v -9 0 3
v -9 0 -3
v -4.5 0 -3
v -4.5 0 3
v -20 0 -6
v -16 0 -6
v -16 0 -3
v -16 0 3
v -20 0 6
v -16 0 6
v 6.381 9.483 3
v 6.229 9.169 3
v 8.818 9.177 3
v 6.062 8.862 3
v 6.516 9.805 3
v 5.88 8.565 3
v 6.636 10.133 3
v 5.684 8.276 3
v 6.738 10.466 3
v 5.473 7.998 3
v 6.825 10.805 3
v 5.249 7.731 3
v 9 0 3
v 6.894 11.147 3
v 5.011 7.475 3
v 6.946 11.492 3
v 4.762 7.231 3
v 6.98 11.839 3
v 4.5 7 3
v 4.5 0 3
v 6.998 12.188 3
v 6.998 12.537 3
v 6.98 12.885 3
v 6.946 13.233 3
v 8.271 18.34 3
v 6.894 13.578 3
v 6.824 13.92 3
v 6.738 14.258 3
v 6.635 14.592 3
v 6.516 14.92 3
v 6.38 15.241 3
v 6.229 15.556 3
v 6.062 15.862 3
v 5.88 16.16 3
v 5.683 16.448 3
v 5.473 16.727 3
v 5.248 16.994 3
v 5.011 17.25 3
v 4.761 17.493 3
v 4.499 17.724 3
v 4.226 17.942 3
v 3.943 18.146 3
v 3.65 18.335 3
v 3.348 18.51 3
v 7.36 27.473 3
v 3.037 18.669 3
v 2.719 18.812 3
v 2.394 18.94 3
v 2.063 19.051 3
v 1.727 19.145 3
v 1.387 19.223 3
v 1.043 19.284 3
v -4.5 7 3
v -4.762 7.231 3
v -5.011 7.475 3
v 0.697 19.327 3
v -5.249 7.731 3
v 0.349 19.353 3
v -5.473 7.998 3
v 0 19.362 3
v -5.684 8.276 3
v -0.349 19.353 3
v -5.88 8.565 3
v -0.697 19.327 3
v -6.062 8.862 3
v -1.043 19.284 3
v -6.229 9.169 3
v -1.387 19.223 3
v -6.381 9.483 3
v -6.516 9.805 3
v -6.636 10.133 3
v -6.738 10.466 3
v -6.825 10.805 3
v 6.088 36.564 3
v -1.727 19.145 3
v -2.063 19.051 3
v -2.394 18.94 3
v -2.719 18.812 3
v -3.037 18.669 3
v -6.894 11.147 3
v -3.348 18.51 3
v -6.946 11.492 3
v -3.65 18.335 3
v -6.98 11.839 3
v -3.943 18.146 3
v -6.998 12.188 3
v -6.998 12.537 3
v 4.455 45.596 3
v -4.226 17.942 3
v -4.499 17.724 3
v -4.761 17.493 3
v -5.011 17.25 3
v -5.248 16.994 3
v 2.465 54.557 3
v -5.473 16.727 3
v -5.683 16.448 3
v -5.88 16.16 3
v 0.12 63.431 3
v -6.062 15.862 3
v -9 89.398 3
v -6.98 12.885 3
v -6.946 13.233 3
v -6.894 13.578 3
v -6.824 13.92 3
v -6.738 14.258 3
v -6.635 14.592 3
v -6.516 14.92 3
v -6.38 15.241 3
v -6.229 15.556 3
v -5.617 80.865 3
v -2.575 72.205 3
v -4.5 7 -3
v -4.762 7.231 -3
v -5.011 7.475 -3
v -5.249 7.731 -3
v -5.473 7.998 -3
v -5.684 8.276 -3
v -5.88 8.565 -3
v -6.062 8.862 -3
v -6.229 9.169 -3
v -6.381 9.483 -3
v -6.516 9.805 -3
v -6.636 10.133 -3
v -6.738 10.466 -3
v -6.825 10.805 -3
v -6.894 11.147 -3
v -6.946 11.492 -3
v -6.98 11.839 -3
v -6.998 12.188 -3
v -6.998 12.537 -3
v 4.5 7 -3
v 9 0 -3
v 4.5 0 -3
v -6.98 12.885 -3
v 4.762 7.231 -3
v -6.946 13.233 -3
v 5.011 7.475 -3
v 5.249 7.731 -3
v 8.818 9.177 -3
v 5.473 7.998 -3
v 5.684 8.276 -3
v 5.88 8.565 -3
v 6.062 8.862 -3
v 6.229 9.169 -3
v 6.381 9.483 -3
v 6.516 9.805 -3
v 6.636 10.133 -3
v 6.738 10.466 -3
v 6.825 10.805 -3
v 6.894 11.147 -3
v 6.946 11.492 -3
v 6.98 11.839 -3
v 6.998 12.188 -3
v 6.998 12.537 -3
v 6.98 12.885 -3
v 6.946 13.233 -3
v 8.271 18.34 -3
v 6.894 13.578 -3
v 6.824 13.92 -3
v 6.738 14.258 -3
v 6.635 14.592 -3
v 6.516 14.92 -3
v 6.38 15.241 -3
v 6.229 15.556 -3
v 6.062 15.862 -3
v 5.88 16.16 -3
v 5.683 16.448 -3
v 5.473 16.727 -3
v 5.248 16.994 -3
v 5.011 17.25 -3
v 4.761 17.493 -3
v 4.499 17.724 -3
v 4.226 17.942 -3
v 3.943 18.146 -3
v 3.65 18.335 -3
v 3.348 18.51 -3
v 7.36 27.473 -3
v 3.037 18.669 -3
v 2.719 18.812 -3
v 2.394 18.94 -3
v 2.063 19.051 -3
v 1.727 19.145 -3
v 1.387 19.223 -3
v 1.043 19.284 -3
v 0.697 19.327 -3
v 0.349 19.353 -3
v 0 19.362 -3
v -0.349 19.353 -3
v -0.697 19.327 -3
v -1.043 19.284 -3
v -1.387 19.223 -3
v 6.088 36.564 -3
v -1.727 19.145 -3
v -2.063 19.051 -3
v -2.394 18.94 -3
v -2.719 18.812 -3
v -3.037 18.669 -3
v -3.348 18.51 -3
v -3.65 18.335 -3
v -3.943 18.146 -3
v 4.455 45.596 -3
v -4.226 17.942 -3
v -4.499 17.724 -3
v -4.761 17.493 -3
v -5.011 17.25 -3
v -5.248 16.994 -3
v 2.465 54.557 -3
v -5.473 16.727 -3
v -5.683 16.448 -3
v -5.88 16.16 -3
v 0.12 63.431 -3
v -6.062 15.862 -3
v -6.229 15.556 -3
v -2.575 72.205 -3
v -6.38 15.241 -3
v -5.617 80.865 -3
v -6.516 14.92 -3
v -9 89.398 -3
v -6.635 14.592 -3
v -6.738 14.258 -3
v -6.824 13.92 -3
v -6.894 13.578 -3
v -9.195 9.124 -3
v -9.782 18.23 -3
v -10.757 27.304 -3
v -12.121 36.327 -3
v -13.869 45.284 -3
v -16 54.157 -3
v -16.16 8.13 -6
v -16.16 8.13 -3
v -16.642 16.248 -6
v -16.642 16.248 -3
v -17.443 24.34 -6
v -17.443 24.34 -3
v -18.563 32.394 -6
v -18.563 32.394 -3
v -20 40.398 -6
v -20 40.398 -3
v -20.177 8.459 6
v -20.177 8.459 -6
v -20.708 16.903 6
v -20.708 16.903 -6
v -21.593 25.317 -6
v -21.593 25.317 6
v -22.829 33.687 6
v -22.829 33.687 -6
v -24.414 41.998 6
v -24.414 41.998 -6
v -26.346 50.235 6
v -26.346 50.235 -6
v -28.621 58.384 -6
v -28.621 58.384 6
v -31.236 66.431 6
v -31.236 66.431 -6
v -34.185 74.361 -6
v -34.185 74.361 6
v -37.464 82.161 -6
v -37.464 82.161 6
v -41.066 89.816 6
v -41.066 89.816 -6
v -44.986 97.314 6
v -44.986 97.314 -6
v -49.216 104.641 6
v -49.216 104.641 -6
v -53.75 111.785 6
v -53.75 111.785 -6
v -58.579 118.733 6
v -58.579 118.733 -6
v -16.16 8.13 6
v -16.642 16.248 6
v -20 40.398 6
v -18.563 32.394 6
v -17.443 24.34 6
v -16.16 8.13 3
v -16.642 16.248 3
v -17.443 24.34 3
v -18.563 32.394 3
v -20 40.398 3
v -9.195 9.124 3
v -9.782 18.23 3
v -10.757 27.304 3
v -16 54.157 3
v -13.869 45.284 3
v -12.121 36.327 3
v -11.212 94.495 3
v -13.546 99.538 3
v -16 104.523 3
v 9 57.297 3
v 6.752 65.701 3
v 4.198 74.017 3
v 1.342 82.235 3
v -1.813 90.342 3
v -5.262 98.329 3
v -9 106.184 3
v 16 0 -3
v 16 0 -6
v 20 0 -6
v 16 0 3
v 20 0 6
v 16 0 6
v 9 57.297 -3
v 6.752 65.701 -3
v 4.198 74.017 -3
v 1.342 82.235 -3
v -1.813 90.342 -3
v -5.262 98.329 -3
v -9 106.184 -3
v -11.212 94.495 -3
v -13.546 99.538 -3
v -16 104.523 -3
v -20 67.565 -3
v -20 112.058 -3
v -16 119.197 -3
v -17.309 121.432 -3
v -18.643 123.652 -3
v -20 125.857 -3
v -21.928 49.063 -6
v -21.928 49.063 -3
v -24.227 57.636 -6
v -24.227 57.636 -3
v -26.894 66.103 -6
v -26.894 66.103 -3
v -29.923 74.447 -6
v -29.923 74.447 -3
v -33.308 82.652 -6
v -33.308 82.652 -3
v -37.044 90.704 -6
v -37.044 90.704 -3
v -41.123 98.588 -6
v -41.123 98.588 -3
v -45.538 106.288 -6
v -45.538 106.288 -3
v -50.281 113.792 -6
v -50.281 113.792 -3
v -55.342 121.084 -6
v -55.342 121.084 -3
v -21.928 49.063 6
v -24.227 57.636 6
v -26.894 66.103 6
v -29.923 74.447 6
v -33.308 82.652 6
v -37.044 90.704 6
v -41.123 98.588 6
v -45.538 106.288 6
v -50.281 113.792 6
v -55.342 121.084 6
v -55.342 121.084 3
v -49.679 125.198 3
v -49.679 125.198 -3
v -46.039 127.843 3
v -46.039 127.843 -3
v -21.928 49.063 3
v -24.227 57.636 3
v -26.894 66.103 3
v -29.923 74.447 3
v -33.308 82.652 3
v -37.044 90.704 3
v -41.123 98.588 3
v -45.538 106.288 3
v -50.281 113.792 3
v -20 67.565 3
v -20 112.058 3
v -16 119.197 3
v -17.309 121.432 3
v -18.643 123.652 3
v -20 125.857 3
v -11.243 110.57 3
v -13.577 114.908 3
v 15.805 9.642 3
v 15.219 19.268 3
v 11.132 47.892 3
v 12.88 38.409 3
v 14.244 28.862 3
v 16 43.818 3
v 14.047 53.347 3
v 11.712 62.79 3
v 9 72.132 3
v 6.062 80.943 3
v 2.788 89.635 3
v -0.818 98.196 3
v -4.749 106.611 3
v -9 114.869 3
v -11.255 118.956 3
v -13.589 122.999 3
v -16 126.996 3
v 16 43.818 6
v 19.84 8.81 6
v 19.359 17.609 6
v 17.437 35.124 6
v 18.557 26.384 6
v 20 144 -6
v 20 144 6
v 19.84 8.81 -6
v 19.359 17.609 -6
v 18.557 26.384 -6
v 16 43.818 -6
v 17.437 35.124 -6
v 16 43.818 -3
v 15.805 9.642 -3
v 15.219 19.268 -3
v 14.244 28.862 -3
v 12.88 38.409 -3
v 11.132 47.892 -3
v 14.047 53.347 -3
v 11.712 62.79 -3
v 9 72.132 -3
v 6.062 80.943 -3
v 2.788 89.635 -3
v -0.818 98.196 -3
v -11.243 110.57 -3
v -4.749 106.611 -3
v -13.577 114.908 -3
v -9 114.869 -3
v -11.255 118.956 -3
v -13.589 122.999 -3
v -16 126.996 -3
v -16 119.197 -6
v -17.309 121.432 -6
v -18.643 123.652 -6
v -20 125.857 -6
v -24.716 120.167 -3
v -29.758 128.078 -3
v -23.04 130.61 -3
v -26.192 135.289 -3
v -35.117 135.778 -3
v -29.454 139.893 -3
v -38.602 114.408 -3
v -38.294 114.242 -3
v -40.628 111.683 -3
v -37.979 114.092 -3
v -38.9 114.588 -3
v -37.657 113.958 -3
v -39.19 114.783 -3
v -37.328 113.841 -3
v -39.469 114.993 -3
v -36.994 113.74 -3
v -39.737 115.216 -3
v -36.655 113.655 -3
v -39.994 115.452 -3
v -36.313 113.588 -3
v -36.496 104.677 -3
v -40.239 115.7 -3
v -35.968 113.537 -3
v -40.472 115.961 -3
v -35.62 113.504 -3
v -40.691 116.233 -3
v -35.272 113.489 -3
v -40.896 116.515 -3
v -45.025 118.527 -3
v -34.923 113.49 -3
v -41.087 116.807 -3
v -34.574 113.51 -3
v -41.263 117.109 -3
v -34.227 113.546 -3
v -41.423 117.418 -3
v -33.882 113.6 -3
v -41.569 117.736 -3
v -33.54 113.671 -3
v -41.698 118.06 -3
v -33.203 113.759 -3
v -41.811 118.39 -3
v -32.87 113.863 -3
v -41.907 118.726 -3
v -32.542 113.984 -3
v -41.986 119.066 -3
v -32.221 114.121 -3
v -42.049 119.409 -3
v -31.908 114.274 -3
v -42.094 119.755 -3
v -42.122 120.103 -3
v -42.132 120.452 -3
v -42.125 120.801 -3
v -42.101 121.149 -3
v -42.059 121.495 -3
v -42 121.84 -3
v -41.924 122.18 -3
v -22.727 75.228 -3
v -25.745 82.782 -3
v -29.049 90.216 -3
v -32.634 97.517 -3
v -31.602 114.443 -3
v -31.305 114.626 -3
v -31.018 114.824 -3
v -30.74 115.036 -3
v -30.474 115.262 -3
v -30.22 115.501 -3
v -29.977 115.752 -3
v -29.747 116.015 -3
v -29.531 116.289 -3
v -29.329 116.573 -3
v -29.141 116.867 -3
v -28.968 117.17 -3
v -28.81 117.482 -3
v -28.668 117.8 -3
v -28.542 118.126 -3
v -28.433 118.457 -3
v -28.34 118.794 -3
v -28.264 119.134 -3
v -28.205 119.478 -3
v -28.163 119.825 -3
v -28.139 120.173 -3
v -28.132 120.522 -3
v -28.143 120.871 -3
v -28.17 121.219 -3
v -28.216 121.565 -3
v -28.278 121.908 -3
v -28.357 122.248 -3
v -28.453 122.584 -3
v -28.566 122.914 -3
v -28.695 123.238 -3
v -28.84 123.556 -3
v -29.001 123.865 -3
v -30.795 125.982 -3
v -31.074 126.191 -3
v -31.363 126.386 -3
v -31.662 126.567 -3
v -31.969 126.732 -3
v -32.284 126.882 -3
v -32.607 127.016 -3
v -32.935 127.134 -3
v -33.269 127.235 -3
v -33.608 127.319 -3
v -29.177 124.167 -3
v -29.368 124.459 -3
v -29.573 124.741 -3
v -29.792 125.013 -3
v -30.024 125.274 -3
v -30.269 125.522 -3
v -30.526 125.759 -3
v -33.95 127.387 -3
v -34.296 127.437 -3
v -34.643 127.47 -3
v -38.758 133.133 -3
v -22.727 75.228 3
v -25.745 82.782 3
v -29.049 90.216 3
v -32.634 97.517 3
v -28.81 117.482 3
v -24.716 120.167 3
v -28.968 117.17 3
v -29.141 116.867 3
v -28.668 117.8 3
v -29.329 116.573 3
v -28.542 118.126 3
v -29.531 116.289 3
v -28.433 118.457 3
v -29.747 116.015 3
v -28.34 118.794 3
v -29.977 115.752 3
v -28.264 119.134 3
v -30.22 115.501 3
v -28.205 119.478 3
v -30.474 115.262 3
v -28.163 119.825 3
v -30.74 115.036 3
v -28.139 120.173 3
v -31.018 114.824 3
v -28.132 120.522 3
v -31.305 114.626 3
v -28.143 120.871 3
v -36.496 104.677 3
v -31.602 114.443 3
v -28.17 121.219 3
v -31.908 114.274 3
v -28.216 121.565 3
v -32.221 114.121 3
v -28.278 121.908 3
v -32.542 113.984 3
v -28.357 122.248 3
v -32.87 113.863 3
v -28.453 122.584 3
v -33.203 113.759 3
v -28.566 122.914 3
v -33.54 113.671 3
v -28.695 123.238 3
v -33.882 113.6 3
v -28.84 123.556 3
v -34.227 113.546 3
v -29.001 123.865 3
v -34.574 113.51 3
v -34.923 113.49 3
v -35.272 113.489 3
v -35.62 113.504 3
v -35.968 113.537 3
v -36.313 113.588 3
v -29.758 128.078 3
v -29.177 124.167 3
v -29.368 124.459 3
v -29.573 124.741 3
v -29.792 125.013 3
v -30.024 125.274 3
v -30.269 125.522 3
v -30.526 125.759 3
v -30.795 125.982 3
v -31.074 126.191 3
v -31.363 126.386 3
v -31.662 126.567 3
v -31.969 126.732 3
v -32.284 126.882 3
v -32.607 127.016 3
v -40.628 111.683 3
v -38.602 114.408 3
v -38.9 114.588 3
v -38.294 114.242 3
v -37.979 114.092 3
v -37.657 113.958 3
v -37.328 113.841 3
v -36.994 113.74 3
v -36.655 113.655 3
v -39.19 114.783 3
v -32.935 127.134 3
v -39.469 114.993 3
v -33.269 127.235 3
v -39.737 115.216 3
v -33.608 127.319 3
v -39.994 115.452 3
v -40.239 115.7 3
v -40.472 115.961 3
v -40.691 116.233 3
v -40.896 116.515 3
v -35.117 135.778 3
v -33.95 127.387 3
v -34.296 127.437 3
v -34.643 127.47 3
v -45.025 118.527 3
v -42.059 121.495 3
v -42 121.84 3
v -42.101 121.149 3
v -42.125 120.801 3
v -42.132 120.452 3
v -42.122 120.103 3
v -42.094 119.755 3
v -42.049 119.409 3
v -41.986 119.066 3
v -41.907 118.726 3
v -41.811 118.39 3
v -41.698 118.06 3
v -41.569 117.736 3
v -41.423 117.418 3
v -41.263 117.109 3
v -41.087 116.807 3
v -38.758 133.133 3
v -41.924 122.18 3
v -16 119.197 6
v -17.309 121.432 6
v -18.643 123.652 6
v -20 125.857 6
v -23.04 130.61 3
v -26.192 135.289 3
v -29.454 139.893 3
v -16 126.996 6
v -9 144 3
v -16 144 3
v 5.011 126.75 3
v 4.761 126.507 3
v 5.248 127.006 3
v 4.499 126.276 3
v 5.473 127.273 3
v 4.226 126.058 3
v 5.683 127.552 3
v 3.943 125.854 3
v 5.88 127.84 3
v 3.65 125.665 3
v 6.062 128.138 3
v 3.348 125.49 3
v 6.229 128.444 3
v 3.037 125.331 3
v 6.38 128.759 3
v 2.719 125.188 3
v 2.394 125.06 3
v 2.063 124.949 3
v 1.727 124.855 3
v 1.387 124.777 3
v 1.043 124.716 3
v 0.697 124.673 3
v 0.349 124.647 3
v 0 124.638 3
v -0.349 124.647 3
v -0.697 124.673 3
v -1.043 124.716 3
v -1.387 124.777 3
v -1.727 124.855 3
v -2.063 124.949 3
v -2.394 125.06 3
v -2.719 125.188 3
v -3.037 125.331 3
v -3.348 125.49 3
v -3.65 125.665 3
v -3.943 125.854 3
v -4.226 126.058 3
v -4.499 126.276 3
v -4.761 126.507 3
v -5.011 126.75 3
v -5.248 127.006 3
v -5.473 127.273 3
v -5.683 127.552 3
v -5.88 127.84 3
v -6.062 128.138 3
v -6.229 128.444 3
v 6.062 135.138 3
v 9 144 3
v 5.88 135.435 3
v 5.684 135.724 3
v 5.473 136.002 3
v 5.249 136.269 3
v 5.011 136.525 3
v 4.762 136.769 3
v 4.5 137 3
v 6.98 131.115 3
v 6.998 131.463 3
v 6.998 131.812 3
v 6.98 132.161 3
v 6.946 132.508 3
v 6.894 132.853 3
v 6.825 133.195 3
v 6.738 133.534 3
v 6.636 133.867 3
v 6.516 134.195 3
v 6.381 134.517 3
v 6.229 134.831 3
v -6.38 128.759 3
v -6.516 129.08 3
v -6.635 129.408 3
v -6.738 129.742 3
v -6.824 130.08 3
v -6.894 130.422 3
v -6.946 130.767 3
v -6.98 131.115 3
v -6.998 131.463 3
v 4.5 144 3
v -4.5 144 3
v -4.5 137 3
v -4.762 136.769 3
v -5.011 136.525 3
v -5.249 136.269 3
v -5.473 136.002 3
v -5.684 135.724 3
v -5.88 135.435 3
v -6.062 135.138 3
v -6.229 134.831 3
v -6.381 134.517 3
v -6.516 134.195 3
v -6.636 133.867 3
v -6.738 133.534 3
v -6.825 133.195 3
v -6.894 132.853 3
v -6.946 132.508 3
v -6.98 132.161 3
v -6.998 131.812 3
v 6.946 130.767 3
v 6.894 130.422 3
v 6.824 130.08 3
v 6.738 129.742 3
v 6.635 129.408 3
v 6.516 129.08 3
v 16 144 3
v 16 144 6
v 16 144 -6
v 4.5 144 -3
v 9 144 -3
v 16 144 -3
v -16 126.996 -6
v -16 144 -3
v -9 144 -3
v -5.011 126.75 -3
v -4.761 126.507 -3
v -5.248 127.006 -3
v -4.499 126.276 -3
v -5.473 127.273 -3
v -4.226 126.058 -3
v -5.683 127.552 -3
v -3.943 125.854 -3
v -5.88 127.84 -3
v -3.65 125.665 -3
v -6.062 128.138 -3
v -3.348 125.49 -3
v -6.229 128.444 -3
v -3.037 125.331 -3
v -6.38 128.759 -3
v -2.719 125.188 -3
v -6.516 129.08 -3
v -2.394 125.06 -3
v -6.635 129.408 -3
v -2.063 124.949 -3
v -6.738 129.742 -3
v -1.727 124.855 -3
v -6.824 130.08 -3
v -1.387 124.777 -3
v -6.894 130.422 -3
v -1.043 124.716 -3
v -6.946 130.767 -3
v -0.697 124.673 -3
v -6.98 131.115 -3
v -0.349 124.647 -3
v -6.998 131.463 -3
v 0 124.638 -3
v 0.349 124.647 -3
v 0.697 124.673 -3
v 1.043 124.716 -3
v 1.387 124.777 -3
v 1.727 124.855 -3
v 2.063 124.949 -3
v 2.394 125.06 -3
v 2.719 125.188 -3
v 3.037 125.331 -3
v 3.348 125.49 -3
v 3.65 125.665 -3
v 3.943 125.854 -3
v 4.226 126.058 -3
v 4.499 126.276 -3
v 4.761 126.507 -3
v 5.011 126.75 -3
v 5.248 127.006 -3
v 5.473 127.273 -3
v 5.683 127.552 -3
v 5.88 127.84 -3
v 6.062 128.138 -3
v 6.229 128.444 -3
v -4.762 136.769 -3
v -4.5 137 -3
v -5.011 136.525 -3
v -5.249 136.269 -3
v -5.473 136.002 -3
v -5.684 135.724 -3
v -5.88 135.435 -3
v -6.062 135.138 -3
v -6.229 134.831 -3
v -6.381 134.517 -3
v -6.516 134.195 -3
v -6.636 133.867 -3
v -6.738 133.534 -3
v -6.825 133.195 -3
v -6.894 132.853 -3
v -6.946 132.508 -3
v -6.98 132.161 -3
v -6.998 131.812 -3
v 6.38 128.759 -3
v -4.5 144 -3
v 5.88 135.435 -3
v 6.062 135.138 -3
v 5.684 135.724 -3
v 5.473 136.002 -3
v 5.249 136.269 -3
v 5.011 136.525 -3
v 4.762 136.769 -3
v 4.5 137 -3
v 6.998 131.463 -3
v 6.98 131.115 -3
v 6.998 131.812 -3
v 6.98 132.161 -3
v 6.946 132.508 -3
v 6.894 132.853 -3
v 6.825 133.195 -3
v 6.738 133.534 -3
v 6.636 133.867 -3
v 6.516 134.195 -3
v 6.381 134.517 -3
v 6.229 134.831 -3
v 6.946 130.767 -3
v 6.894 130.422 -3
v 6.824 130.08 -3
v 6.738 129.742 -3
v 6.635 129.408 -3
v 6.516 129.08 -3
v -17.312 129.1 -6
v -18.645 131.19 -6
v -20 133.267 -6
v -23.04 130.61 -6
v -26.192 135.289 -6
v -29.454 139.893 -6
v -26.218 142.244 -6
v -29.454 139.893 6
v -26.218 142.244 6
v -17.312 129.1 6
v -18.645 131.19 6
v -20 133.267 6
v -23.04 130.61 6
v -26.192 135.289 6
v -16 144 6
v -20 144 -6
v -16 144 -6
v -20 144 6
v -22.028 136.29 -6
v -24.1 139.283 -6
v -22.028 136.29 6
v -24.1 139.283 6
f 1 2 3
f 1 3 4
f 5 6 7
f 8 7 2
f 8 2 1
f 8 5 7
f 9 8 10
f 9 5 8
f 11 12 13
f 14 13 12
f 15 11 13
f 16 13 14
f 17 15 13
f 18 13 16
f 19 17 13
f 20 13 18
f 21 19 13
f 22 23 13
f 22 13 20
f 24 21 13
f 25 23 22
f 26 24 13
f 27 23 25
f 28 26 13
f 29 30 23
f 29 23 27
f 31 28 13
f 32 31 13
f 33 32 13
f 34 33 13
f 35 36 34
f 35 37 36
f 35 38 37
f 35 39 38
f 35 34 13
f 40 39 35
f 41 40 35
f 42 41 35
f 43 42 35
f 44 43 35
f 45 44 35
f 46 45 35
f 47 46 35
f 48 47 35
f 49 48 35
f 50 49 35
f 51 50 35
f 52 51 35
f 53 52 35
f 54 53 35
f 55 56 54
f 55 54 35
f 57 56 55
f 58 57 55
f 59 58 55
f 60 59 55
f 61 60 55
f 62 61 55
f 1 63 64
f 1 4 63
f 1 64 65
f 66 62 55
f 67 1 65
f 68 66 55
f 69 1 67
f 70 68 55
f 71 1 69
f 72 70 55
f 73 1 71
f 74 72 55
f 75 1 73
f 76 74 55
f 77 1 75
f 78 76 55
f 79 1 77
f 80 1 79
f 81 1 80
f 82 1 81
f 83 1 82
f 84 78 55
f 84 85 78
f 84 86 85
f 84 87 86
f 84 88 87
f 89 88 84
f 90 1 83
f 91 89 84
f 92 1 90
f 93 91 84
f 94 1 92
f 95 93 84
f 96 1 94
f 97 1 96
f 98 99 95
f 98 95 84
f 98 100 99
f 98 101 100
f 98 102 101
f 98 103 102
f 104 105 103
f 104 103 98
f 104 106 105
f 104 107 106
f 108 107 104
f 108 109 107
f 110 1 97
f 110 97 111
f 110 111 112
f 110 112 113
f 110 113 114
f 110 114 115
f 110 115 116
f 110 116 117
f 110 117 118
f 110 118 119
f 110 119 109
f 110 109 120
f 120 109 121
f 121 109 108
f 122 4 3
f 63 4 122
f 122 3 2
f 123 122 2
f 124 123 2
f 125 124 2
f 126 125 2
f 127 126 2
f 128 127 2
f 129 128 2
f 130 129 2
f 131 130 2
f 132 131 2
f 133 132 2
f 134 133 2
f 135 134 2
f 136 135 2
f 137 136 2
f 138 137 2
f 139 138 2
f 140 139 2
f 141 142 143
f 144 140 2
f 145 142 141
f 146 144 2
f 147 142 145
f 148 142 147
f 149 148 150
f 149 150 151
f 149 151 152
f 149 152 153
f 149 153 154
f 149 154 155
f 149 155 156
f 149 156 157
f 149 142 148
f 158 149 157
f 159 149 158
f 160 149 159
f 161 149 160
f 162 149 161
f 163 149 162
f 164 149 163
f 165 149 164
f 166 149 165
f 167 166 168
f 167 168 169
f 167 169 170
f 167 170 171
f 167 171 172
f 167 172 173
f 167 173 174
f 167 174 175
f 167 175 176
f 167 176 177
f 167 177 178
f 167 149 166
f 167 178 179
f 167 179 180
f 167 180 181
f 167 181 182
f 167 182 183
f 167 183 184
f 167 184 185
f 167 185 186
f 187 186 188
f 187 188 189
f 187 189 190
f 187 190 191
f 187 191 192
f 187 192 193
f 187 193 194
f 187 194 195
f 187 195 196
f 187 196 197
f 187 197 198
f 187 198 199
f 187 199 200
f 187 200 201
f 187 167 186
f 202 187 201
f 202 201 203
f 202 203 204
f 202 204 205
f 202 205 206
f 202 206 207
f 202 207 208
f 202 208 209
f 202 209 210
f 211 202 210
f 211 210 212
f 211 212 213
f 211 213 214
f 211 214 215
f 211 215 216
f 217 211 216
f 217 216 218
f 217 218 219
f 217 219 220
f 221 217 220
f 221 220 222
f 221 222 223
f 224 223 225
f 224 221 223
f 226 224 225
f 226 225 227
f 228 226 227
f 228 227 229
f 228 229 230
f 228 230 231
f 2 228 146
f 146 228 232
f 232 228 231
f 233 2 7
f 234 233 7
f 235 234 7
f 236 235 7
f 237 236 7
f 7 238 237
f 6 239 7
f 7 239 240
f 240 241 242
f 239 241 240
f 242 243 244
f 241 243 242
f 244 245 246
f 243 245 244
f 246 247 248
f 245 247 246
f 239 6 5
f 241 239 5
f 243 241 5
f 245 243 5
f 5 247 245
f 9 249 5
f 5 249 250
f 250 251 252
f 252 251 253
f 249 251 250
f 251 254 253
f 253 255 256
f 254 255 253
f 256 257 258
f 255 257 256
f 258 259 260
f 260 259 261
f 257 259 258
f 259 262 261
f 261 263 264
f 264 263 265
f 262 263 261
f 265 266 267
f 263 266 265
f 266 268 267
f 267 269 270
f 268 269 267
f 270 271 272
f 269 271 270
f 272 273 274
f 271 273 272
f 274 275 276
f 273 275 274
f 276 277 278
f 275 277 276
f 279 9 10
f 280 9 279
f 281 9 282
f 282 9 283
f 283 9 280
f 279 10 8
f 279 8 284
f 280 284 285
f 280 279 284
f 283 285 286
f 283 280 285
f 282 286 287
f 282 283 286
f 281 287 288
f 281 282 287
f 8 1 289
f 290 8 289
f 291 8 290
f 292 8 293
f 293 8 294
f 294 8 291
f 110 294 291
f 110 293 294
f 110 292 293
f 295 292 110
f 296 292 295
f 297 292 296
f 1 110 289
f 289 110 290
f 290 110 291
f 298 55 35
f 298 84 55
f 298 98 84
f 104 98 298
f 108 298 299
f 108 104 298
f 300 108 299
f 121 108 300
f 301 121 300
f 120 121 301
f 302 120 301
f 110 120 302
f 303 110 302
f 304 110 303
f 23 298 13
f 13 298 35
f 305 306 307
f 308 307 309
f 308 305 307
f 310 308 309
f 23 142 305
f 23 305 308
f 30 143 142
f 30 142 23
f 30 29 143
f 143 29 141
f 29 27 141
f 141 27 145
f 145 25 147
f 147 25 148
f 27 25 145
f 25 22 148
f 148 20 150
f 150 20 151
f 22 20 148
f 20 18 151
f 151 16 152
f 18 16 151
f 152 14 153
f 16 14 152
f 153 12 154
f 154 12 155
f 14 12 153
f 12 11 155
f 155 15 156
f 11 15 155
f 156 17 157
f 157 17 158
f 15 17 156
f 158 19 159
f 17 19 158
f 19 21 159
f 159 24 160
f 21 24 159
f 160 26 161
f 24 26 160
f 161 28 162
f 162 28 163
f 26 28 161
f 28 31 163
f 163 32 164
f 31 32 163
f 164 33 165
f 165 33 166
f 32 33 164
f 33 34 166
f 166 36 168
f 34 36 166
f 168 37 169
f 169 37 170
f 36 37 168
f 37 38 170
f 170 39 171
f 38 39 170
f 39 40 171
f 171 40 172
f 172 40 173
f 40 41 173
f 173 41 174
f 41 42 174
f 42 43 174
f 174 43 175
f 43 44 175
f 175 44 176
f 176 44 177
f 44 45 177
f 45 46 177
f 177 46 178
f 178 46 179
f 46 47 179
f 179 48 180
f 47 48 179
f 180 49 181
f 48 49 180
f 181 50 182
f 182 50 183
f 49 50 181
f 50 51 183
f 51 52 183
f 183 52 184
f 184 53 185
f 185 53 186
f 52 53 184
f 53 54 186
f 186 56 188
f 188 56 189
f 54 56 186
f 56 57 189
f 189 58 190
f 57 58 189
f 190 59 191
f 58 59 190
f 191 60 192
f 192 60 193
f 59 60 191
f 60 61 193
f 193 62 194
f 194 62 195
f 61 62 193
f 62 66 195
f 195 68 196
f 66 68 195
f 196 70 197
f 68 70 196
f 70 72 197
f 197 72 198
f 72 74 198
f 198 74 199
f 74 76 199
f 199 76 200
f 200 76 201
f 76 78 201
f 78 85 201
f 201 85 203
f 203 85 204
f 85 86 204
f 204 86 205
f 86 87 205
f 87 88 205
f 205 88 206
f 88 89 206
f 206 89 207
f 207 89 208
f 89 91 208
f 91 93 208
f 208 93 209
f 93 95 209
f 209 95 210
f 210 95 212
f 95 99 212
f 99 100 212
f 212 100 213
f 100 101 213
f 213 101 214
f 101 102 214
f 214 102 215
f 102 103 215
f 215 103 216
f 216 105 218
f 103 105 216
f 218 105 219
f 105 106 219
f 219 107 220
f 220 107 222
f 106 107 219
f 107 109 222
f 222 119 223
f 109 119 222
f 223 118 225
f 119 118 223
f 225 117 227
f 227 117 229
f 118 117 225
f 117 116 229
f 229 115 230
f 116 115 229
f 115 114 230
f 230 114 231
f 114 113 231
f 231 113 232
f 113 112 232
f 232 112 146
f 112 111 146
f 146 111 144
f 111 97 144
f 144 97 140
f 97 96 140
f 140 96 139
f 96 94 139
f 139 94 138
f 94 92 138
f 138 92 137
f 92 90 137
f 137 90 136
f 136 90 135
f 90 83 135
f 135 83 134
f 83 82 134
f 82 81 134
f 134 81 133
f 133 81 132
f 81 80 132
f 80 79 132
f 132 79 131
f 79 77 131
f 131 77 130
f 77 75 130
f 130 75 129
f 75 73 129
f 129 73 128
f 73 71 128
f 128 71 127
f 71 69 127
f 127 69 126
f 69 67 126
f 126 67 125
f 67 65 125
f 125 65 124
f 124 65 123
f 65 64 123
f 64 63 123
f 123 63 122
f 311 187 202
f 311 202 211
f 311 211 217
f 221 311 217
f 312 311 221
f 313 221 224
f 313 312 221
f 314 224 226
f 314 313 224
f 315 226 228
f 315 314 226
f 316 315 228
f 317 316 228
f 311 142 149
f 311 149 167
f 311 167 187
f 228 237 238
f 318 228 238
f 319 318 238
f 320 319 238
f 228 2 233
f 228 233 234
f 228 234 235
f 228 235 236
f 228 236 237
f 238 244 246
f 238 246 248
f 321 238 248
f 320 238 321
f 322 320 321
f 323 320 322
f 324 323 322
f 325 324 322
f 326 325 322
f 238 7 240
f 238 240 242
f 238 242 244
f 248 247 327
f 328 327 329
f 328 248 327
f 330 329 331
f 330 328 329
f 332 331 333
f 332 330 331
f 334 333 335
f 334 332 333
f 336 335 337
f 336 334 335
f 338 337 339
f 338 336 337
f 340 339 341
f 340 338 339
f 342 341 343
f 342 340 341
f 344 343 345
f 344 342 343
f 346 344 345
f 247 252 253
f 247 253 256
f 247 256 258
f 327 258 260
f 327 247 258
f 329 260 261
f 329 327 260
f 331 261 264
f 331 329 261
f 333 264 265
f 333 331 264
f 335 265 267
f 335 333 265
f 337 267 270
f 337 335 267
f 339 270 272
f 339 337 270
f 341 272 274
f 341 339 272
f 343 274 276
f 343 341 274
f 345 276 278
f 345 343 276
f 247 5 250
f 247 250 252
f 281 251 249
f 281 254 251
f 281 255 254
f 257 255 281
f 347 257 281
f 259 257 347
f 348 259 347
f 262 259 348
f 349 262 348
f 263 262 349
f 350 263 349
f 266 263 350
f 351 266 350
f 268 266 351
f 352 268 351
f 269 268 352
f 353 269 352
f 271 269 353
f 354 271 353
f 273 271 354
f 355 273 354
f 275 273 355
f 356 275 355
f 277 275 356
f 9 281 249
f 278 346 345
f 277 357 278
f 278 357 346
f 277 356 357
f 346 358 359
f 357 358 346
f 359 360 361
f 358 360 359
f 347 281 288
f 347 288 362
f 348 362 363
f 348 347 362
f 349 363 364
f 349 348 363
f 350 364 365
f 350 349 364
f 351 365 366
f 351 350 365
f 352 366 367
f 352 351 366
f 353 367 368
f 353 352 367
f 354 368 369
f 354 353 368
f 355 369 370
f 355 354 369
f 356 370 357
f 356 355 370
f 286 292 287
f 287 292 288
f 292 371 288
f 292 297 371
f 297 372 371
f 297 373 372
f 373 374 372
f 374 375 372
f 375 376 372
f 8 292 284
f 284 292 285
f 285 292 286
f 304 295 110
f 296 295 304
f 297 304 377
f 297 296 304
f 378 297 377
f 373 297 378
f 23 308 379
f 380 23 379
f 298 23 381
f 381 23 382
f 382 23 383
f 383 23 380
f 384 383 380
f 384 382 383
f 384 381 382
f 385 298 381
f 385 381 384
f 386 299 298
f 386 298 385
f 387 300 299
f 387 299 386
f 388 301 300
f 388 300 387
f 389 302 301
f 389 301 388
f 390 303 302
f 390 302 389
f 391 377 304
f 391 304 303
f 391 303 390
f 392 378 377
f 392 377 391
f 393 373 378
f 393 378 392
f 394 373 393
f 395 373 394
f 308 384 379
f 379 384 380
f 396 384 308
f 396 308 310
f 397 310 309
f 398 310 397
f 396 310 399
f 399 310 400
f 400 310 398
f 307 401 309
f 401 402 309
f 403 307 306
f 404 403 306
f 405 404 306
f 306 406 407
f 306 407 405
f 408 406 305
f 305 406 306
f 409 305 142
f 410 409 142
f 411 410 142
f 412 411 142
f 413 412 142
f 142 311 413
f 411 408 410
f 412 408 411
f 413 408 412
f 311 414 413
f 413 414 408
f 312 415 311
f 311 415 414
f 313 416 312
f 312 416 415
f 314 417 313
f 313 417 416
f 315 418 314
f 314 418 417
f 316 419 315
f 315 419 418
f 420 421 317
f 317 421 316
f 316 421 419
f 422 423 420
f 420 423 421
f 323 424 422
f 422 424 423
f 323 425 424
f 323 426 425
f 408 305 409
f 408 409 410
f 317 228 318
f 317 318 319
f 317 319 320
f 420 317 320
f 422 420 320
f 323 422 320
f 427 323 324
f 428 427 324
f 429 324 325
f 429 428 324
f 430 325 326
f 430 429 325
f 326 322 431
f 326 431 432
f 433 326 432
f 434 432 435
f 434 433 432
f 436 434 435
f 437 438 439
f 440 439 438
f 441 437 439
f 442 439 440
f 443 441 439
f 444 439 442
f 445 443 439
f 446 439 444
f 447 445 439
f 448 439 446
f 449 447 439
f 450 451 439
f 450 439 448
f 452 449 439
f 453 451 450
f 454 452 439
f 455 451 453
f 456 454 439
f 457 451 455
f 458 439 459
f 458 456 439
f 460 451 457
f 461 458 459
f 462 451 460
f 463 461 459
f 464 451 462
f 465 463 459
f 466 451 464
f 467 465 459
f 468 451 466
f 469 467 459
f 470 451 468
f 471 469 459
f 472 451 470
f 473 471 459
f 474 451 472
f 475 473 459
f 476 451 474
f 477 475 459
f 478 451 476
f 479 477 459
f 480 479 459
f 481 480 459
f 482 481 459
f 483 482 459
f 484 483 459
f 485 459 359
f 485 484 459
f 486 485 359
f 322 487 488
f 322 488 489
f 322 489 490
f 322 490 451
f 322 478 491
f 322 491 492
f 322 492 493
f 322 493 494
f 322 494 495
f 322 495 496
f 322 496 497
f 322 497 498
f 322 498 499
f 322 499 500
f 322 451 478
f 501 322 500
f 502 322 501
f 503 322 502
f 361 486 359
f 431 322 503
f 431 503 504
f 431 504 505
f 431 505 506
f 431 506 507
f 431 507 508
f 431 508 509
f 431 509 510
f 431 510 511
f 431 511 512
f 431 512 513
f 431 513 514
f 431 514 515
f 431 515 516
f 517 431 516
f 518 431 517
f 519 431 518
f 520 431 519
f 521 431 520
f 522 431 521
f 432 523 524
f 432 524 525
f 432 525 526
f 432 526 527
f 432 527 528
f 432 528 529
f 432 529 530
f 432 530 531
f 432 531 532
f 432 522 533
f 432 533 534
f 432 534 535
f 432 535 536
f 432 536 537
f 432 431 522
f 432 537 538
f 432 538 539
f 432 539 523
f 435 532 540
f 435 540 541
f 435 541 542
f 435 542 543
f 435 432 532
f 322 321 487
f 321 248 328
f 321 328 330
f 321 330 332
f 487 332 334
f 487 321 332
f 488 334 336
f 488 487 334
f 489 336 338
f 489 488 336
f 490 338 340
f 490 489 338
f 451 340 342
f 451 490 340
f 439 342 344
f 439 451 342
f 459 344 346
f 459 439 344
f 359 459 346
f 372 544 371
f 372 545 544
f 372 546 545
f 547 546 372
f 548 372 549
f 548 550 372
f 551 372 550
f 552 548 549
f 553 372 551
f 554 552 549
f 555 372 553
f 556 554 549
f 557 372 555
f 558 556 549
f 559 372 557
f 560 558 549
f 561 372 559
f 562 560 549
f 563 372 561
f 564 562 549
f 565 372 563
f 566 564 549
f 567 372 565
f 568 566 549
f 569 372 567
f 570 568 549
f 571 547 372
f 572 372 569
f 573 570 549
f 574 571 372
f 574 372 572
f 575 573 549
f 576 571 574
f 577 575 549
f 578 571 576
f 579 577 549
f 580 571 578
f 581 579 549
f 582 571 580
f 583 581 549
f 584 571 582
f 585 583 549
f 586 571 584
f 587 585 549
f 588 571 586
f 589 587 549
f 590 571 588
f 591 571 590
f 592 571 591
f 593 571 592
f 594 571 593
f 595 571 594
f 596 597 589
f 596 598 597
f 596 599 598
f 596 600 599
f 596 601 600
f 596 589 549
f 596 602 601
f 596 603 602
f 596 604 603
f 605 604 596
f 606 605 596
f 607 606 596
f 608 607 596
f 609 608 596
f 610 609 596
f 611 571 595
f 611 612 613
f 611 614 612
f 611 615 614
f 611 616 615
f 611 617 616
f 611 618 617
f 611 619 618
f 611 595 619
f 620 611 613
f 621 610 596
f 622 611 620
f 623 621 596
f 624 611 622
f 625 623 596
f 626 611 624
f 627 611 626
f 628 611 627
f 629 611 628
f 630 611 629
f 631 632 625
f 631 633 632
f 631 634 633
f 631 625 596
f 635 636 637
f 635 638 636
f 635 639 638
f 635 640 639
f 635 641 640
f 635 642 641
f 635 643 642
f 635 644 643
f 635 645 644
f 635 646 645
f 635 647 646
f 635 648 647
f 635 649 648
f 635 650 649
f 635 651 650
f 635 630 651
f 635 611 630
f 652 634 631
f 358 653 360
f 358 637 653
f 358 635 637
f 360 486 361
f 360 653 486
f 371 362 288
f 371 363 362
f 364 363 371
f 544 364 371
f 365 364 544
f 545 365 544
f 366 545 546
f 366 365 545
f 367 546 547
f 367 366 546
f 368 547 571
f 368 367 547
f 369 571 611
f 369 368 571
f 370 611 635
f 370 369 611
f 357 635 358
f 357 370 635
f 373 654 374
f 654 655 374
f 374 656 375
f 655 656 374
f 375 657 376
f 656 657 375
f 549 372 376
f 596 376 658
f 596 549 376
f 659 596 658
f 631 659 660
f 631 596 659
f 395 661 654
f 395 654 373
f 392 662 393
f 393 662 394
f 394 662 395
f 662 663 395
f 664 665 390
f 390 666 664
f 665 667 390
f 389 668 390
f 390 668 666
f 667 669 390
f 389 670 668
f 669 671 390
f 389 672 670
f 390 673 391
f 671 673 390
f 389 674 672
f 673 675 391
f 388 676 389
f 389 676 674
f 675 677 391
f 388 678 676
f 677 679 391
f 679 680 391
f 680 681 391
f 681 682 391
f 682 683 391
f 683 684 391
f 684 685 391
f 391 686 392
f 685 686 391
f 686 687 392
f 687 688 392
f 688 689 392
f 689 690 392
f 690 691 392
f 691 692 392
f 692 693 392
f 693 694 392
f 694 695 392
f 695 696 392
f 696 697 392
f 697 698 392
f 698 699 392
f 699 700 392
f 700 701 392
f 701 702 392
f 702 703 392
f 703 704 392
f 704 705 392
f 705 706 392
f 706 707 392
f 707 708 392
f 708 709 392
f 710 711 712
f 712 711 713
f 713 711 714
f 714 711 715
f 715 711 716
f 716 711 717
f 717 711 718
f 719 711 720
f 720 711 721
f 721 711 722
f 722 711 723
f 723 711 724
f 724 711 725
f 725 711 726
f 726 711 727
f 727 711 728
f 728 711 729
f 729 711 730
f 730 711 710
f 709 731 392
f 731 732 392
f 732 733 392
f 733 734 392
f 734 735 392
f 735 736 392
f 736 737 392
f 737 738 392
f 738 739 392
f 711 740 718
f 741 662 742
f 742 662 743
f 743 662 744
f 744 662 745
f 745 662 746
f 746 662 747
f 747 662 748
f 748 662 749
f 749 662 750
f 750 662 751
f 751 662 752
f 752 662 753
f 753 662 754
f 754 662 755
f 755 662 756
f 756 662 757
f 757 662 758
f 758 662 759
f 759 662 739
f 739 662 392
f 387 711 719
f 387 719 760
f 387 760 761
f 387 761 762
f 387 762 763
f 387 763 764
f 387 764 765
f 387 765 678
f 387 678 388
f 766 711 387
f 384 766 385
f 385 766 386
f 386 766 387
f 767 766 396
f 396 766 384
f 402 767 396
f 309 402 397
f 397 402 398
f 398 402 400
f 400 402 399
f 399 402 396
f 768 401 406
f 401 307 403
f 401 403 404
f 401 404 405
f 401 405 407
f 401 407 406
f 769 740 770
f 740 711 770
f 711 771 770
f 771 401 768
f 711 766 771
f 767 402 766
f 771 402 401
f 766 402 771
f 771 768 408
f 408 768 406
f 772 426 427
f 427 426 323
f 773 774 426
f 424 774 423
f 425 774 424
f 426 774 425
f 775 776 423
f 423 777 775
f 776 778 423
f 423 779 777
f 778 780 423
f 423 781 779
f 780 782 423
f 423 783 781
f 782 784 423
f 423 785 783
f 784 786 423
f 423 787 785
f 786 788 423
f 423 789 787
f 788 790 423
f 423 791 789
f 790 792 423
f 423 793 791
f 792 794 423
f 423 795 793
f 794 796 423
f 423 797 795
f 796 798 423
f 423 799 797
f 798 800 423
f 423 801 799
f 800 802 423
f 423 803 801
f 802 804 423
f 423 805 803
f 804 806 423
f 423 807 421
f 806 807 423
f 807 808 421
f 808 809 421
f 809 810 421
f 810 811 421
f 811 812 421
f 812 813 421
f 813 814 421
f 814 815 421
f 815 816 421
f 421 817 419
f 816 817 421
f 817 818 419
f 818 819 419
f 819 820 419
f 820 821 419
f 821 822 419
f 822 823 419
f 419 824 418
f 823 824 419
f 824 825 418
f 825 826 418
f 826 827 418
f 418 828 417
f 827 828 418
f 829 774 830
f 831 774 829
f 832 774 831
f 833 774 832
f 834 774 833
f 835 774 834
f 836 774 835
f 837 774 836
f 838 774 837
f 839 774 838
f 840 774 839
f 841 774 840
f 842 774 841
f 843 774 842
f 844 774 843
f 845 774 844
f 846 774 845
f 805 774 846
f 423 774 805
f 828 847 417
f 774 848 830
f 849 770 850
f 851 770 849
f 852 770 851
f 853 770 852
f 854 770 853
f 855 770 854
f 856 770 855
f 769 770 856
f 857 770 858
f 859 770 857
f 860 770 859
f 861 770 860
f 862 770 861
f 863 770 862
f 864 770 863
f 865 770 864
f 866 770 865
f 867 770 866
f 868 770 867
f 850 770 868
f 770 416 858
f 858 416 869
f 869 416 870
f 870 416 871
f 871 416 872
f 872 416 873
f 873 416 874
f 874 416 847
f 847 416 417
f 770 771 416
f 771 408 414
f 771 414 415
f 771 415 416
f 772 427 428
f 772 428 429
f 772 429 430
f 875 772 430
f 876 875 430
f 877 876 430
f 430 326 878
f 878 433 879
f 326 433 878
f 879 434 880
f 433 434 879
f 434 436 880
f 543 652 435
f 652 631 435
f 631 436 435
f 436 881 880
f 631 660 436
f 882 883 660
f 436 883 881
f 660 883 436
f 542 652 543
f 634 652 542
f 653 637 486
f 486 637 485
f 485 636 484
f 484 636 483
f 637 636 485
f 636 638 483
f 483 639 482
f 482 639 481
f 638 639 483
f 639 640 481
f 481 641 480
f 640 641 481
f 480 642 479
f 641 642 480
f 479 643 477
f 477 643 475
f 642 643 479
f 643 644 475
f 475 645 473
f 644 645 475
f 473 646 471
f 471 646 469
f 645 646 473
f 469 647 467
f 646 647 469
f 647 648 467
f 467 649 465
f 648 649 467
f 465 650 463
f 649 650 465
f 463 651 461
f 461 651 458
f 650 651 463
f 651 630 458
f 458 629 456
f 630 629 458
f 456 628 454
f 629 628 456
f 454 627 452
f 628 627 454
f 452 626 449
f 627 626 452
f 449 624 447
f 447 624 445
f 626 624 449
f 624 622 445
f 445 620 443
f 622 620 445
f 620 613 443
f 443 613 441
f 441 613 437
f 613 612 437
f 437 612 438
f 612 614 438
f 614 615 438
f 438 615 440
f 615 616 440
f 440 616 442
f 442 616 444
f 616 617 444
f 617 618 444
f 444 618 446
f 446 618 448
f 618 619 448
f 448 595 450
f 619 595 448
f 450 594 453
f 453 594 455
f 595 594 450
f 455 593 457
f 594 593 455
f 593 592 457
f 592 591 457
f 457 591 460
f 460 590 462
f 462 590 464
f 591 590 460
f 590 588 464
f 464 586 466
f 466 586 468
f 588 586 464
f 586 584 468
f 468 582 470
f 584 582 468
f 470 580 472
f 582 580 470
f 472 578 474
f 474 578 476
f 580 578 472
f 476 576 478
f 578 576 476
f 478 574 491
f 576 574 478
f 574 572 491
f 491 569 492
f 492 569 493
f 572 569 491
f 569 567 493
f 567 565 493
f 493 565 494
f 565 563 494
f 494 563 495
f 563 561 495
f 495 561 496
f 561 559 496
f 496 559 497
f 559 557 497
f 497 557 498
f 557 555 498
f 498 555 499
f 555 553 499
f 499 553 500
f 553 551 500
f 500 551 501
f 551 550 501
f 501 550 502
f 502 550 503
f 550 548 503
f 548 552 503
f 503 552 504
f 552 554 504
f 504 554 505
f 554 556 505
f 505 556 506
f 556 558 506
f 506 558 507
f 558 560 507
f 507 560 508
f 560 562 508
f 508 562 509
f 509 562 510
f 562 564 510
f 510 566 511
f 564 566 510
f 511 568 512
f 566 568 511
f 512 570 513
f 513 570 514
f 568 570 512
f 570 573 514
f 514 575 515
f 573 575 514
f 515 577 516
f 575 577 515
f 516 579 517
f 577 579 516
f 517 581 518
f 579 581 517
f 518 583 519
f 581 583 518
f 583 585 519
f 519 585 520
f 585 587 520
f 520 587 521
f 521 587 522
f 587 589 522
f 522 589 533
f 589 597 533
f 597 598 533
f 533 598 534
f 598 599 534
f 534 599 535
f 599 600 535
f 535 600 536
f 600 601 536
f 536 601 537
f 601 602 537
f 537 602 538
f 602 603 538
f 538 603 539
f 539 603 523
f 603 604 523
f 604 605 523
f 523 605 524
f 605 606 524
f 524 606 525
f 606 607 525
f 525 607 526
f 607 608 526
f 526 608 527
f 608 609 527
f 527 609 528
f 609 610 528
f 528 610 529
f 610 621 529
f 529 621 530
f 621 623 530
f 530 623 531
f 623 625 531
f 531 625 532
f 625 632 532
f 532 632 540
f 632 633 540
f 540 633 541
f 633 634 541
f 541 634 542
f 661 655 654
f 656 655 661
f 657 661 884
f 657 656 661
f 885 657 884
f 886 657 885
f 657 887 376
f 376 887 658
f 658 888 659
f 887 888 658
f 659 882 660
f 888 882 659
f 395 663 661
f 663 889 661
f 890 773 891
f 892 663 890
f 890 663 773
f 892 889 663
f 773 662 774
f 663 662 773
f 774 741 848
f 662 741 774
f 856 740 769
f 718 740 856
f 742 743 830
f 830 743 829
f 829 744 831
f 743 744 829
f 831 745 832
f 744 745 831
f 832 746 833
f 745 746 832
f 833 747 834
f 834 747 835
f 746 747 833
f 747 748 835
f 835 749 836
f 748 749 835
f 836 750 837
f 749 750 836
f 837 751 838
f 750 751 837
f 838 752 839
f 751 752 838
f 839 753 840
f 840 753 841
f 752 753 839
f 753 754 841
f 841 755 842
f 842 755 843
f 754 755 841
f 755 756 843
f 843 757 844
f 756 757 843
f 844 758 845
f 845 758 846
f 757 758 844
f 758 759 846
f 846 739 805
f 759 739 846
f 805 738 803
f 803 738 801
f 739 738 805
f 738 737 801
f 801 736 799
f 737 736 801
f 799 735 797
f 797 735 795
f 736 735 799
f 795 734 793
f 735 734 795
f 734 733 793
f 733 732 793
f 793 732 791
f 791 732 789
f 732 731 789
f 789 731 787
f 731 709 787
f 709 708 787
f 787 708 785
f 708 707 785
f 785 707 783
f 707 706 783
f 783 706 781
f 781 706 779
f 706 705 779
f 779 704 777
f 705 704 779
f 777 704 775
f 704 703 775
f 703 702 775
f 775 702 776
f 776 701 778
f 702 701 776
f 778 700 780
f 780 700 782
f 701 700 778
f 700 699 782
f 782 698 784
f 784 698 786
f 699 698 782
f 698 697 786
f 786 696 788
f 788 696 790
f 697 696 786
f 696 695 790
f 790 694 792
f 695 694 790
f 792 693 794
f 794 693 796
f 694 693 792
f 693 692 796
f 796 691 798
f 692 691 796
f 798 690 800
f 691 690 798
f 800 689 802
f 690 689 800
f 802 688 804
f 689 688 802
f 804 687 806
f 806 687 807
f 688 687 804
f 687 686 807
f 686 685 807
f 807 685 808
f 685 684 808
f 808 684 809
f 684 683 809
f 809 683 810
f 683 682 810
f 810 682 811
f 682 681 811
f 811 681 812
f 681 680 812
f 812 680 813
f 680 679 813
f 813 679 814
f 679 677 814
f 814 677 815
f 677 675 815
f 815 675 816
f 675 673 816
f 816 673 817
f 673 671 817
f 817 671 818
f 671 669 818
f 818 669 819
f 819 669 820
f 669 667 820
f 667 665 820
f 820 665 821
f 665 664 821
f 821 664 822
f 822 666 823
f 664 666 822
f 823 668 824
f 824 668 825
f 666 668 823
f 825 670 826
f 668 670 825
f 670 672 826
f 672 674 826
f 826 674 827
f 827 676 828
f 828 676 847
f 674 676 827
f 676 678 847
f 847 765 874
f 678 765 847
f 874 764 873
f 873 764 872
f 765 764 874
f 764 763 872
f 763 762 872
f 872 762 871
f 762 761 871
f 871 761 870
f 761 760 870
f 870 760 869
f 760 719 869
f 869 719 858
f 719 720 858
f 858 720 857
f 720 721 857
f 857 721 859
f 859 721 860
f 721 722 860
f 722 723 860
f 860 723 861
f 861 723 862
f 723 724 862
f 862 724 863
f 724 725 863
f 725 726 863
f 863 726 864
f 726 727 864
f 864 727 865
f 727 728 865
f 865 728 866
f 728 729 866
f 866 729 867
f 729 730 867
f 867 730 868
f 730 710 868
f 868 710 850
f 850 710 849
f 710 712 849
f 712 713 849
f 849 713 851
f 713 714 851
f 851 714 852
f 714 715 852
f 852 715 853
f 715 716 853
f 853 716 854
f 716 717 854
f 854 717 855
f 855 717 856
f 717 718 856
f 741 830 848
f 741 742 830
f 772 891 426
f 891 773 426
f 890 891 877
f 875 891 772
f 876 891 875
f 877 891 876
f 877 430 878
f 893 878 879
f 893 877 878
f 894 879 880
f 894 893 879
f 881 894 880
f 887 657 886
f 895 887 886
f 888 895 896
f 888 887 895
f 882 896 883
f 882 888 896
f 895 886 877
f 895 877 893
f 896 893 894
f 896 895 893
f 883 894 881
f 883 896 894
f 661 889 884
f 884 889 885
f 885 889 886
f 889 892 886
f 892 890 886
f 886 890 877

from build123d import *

# Parameters (mm, degrees)
SKETCH013_W          = 32
SKETCH013_H          = 3
POCKET_DEPTH         = 6.001
POCKET_DEPTH_BACK    = -6.001
POCKET001_DEPTH      = 6.001
POCKET001_DEPTH_BACK = -6.001
POCKET002_DEPTH      = 6.001
POCKET002_DEPTH_BACK = -6.001


with BuildPart() as part:
    # AdditivePipe: sweep along a path in Sketch002
    with BuildLine(Plane.XY) as additivepipe_path:
        ThreePointArc((0, 0), (-10.865453, 68.601773), (-42.398227, 130.488326))
    # Sketch → AdditivePipe (sweep)
    with BuildSketch(Plane.XZ):
        Polygon((-20, 6), (-20, -6), (-16, -6), (-16, -3), (-9, -3), (9, -3), (16, -3), (16, -6), (20, -6), (20, 6), (16, 6), (16, 3), (9, 3), (-9, 3), (-16, 3), (-16, 6), align=None)
    sweep(path=additivepipe_path.line)

    # AdditivePipe001: sweep along a path in Sketch001
    with BuildLine(Plane.XY) as additivepipe001_path:
        Line((0, 0), (0, 144))
    # Sketch → AdditivePipe001 (sweep)
    with BuildSketch(Plane.XZ):
        Polygon((-20, 6), (-20, -6), (-16, -6), (-16, -3), (-9, -3), (9, -3), (16, -3), (16, -6), (20, -6), (20, 6), (16, 6), (16, 3), (9, 3), (-9, 3), (-16, 3), (-16, 6), align=None)
    sweep(path=additivepipe001_path.line)

    # SubtractivePipe: sweep along a path in Sketch002
    with BuildLine(Plane.XY) as subtractivepipe_path:
        ThreePointArc((0, 0), (-10.865453, 68.601773), (-42.398227, 130.488326))
    # Sketch013 (on Face1 of AdditivePipe001) → SubtractivePipe (sweep, cut)
    with BuildSketch(Plane.XZ):
        with Locations((0, 4.5)):
            Rectangle(SKETCH013_W, SKETCH013_H)
    subtractivepipe = sweep(path=subtractivepipe_path.line, mode=Mode.SUBTRACT)

    # SubtractivePipe001: sweep along a path in Sketch001
    with BuildLine(Plane.XY) as subtractivepipe001_path:
        Line((0, 0), (0, 144))
    # Sketch013 (on Face1 of AdditivePipe001) → SubtractivePipe001 (sweep, cut)
    with BuildSketch(Plane.XZ):
        with Locations((0, 4.5)):
            Rectangle(SKETCH013_W, SKETCH013_H)
    subtractivepipe001 = sweep(path=subtractivepipe001_path.line, mode=Mode.SUBTRACT)

    # Mirrored: SubtractivePipe across XY
    add(subtractivepipe.mirror(Plane.XY), mode=Mode.SUBTRACT)

    # Mirrored001: SubtractivePipe001 across XY
    add(subtractivepipe001.mirror(Plane.XY), mode=Mode.SUBTRACT)

    # Sketch014 → Pocket (cut, two sides)
    with BuildSketch(Plane.XY) as pocket_sk:
        with BuildLine():
            Line((-4.5, 0), (4.5, 0))
            Line((4.5, 0), (4.5, 7))
            ThreePointArc((4.5, 7), (0, 19.361903), (-4.5, 7))
            Line((-4.5, 0), (-4.5, 7))
        make_face()
    extrude(amount=-POCKET_DEPTH, mode=Mode.SUBTRACT)
    extrude(pocket_sk.sketch, amount=-POCKET_DEPTH_BACK, mode=Mode.SUBTRACT)

    # Sketch015 → Pocket001 (cut, two sides)
    with BuildSketch(Plane.XY) as pocket001_sk:
        with BuildLine():
            Line((-46.038804, 127.843292), (-38.757651, 133.13336))
            Line((-38.757651, 133.13336), (-34.643154, 127.470241))
            ThreePointArc((-41.924307, 122.180173), (-31.017586, 114.824218), (-34.643154, 127.470241))
            Line((-46.038804, 127.843292), (-41.924307, 122.180173))
        make_face()
    extrude(amount=-POCKET001_DEPTH, mode=Mode.SUBTRACT)
    extrude(pocket001_sk.sketch, amount=-POCKET001_DEPTH_BACK, mode=Mode.SUBTRACT)

    # Sketch016 → Pocket002 (cut, two sides)
    with BuildSketch(Plane.XY) as pocket002_sk:
        with BuildLine():
            Line((-4.5, 144), (4.5, 144))
            Line((4.5, 144), (4.5, 137))
            ThreePointArc((-4.5, 137), (0, 124.638097), (4.5, 137))
            Line((-4.5, 144), (-4.5, 137))
        make_face()
    extrude(amount=-POCKET002_DEPTH, mode=Mode.SUBTRACT)
    extrude(pocket002_sk.sketch, amount=-POCKET002_DEPTH_BACK, mode=Mode.SUBTRACT)


solid = part.part
